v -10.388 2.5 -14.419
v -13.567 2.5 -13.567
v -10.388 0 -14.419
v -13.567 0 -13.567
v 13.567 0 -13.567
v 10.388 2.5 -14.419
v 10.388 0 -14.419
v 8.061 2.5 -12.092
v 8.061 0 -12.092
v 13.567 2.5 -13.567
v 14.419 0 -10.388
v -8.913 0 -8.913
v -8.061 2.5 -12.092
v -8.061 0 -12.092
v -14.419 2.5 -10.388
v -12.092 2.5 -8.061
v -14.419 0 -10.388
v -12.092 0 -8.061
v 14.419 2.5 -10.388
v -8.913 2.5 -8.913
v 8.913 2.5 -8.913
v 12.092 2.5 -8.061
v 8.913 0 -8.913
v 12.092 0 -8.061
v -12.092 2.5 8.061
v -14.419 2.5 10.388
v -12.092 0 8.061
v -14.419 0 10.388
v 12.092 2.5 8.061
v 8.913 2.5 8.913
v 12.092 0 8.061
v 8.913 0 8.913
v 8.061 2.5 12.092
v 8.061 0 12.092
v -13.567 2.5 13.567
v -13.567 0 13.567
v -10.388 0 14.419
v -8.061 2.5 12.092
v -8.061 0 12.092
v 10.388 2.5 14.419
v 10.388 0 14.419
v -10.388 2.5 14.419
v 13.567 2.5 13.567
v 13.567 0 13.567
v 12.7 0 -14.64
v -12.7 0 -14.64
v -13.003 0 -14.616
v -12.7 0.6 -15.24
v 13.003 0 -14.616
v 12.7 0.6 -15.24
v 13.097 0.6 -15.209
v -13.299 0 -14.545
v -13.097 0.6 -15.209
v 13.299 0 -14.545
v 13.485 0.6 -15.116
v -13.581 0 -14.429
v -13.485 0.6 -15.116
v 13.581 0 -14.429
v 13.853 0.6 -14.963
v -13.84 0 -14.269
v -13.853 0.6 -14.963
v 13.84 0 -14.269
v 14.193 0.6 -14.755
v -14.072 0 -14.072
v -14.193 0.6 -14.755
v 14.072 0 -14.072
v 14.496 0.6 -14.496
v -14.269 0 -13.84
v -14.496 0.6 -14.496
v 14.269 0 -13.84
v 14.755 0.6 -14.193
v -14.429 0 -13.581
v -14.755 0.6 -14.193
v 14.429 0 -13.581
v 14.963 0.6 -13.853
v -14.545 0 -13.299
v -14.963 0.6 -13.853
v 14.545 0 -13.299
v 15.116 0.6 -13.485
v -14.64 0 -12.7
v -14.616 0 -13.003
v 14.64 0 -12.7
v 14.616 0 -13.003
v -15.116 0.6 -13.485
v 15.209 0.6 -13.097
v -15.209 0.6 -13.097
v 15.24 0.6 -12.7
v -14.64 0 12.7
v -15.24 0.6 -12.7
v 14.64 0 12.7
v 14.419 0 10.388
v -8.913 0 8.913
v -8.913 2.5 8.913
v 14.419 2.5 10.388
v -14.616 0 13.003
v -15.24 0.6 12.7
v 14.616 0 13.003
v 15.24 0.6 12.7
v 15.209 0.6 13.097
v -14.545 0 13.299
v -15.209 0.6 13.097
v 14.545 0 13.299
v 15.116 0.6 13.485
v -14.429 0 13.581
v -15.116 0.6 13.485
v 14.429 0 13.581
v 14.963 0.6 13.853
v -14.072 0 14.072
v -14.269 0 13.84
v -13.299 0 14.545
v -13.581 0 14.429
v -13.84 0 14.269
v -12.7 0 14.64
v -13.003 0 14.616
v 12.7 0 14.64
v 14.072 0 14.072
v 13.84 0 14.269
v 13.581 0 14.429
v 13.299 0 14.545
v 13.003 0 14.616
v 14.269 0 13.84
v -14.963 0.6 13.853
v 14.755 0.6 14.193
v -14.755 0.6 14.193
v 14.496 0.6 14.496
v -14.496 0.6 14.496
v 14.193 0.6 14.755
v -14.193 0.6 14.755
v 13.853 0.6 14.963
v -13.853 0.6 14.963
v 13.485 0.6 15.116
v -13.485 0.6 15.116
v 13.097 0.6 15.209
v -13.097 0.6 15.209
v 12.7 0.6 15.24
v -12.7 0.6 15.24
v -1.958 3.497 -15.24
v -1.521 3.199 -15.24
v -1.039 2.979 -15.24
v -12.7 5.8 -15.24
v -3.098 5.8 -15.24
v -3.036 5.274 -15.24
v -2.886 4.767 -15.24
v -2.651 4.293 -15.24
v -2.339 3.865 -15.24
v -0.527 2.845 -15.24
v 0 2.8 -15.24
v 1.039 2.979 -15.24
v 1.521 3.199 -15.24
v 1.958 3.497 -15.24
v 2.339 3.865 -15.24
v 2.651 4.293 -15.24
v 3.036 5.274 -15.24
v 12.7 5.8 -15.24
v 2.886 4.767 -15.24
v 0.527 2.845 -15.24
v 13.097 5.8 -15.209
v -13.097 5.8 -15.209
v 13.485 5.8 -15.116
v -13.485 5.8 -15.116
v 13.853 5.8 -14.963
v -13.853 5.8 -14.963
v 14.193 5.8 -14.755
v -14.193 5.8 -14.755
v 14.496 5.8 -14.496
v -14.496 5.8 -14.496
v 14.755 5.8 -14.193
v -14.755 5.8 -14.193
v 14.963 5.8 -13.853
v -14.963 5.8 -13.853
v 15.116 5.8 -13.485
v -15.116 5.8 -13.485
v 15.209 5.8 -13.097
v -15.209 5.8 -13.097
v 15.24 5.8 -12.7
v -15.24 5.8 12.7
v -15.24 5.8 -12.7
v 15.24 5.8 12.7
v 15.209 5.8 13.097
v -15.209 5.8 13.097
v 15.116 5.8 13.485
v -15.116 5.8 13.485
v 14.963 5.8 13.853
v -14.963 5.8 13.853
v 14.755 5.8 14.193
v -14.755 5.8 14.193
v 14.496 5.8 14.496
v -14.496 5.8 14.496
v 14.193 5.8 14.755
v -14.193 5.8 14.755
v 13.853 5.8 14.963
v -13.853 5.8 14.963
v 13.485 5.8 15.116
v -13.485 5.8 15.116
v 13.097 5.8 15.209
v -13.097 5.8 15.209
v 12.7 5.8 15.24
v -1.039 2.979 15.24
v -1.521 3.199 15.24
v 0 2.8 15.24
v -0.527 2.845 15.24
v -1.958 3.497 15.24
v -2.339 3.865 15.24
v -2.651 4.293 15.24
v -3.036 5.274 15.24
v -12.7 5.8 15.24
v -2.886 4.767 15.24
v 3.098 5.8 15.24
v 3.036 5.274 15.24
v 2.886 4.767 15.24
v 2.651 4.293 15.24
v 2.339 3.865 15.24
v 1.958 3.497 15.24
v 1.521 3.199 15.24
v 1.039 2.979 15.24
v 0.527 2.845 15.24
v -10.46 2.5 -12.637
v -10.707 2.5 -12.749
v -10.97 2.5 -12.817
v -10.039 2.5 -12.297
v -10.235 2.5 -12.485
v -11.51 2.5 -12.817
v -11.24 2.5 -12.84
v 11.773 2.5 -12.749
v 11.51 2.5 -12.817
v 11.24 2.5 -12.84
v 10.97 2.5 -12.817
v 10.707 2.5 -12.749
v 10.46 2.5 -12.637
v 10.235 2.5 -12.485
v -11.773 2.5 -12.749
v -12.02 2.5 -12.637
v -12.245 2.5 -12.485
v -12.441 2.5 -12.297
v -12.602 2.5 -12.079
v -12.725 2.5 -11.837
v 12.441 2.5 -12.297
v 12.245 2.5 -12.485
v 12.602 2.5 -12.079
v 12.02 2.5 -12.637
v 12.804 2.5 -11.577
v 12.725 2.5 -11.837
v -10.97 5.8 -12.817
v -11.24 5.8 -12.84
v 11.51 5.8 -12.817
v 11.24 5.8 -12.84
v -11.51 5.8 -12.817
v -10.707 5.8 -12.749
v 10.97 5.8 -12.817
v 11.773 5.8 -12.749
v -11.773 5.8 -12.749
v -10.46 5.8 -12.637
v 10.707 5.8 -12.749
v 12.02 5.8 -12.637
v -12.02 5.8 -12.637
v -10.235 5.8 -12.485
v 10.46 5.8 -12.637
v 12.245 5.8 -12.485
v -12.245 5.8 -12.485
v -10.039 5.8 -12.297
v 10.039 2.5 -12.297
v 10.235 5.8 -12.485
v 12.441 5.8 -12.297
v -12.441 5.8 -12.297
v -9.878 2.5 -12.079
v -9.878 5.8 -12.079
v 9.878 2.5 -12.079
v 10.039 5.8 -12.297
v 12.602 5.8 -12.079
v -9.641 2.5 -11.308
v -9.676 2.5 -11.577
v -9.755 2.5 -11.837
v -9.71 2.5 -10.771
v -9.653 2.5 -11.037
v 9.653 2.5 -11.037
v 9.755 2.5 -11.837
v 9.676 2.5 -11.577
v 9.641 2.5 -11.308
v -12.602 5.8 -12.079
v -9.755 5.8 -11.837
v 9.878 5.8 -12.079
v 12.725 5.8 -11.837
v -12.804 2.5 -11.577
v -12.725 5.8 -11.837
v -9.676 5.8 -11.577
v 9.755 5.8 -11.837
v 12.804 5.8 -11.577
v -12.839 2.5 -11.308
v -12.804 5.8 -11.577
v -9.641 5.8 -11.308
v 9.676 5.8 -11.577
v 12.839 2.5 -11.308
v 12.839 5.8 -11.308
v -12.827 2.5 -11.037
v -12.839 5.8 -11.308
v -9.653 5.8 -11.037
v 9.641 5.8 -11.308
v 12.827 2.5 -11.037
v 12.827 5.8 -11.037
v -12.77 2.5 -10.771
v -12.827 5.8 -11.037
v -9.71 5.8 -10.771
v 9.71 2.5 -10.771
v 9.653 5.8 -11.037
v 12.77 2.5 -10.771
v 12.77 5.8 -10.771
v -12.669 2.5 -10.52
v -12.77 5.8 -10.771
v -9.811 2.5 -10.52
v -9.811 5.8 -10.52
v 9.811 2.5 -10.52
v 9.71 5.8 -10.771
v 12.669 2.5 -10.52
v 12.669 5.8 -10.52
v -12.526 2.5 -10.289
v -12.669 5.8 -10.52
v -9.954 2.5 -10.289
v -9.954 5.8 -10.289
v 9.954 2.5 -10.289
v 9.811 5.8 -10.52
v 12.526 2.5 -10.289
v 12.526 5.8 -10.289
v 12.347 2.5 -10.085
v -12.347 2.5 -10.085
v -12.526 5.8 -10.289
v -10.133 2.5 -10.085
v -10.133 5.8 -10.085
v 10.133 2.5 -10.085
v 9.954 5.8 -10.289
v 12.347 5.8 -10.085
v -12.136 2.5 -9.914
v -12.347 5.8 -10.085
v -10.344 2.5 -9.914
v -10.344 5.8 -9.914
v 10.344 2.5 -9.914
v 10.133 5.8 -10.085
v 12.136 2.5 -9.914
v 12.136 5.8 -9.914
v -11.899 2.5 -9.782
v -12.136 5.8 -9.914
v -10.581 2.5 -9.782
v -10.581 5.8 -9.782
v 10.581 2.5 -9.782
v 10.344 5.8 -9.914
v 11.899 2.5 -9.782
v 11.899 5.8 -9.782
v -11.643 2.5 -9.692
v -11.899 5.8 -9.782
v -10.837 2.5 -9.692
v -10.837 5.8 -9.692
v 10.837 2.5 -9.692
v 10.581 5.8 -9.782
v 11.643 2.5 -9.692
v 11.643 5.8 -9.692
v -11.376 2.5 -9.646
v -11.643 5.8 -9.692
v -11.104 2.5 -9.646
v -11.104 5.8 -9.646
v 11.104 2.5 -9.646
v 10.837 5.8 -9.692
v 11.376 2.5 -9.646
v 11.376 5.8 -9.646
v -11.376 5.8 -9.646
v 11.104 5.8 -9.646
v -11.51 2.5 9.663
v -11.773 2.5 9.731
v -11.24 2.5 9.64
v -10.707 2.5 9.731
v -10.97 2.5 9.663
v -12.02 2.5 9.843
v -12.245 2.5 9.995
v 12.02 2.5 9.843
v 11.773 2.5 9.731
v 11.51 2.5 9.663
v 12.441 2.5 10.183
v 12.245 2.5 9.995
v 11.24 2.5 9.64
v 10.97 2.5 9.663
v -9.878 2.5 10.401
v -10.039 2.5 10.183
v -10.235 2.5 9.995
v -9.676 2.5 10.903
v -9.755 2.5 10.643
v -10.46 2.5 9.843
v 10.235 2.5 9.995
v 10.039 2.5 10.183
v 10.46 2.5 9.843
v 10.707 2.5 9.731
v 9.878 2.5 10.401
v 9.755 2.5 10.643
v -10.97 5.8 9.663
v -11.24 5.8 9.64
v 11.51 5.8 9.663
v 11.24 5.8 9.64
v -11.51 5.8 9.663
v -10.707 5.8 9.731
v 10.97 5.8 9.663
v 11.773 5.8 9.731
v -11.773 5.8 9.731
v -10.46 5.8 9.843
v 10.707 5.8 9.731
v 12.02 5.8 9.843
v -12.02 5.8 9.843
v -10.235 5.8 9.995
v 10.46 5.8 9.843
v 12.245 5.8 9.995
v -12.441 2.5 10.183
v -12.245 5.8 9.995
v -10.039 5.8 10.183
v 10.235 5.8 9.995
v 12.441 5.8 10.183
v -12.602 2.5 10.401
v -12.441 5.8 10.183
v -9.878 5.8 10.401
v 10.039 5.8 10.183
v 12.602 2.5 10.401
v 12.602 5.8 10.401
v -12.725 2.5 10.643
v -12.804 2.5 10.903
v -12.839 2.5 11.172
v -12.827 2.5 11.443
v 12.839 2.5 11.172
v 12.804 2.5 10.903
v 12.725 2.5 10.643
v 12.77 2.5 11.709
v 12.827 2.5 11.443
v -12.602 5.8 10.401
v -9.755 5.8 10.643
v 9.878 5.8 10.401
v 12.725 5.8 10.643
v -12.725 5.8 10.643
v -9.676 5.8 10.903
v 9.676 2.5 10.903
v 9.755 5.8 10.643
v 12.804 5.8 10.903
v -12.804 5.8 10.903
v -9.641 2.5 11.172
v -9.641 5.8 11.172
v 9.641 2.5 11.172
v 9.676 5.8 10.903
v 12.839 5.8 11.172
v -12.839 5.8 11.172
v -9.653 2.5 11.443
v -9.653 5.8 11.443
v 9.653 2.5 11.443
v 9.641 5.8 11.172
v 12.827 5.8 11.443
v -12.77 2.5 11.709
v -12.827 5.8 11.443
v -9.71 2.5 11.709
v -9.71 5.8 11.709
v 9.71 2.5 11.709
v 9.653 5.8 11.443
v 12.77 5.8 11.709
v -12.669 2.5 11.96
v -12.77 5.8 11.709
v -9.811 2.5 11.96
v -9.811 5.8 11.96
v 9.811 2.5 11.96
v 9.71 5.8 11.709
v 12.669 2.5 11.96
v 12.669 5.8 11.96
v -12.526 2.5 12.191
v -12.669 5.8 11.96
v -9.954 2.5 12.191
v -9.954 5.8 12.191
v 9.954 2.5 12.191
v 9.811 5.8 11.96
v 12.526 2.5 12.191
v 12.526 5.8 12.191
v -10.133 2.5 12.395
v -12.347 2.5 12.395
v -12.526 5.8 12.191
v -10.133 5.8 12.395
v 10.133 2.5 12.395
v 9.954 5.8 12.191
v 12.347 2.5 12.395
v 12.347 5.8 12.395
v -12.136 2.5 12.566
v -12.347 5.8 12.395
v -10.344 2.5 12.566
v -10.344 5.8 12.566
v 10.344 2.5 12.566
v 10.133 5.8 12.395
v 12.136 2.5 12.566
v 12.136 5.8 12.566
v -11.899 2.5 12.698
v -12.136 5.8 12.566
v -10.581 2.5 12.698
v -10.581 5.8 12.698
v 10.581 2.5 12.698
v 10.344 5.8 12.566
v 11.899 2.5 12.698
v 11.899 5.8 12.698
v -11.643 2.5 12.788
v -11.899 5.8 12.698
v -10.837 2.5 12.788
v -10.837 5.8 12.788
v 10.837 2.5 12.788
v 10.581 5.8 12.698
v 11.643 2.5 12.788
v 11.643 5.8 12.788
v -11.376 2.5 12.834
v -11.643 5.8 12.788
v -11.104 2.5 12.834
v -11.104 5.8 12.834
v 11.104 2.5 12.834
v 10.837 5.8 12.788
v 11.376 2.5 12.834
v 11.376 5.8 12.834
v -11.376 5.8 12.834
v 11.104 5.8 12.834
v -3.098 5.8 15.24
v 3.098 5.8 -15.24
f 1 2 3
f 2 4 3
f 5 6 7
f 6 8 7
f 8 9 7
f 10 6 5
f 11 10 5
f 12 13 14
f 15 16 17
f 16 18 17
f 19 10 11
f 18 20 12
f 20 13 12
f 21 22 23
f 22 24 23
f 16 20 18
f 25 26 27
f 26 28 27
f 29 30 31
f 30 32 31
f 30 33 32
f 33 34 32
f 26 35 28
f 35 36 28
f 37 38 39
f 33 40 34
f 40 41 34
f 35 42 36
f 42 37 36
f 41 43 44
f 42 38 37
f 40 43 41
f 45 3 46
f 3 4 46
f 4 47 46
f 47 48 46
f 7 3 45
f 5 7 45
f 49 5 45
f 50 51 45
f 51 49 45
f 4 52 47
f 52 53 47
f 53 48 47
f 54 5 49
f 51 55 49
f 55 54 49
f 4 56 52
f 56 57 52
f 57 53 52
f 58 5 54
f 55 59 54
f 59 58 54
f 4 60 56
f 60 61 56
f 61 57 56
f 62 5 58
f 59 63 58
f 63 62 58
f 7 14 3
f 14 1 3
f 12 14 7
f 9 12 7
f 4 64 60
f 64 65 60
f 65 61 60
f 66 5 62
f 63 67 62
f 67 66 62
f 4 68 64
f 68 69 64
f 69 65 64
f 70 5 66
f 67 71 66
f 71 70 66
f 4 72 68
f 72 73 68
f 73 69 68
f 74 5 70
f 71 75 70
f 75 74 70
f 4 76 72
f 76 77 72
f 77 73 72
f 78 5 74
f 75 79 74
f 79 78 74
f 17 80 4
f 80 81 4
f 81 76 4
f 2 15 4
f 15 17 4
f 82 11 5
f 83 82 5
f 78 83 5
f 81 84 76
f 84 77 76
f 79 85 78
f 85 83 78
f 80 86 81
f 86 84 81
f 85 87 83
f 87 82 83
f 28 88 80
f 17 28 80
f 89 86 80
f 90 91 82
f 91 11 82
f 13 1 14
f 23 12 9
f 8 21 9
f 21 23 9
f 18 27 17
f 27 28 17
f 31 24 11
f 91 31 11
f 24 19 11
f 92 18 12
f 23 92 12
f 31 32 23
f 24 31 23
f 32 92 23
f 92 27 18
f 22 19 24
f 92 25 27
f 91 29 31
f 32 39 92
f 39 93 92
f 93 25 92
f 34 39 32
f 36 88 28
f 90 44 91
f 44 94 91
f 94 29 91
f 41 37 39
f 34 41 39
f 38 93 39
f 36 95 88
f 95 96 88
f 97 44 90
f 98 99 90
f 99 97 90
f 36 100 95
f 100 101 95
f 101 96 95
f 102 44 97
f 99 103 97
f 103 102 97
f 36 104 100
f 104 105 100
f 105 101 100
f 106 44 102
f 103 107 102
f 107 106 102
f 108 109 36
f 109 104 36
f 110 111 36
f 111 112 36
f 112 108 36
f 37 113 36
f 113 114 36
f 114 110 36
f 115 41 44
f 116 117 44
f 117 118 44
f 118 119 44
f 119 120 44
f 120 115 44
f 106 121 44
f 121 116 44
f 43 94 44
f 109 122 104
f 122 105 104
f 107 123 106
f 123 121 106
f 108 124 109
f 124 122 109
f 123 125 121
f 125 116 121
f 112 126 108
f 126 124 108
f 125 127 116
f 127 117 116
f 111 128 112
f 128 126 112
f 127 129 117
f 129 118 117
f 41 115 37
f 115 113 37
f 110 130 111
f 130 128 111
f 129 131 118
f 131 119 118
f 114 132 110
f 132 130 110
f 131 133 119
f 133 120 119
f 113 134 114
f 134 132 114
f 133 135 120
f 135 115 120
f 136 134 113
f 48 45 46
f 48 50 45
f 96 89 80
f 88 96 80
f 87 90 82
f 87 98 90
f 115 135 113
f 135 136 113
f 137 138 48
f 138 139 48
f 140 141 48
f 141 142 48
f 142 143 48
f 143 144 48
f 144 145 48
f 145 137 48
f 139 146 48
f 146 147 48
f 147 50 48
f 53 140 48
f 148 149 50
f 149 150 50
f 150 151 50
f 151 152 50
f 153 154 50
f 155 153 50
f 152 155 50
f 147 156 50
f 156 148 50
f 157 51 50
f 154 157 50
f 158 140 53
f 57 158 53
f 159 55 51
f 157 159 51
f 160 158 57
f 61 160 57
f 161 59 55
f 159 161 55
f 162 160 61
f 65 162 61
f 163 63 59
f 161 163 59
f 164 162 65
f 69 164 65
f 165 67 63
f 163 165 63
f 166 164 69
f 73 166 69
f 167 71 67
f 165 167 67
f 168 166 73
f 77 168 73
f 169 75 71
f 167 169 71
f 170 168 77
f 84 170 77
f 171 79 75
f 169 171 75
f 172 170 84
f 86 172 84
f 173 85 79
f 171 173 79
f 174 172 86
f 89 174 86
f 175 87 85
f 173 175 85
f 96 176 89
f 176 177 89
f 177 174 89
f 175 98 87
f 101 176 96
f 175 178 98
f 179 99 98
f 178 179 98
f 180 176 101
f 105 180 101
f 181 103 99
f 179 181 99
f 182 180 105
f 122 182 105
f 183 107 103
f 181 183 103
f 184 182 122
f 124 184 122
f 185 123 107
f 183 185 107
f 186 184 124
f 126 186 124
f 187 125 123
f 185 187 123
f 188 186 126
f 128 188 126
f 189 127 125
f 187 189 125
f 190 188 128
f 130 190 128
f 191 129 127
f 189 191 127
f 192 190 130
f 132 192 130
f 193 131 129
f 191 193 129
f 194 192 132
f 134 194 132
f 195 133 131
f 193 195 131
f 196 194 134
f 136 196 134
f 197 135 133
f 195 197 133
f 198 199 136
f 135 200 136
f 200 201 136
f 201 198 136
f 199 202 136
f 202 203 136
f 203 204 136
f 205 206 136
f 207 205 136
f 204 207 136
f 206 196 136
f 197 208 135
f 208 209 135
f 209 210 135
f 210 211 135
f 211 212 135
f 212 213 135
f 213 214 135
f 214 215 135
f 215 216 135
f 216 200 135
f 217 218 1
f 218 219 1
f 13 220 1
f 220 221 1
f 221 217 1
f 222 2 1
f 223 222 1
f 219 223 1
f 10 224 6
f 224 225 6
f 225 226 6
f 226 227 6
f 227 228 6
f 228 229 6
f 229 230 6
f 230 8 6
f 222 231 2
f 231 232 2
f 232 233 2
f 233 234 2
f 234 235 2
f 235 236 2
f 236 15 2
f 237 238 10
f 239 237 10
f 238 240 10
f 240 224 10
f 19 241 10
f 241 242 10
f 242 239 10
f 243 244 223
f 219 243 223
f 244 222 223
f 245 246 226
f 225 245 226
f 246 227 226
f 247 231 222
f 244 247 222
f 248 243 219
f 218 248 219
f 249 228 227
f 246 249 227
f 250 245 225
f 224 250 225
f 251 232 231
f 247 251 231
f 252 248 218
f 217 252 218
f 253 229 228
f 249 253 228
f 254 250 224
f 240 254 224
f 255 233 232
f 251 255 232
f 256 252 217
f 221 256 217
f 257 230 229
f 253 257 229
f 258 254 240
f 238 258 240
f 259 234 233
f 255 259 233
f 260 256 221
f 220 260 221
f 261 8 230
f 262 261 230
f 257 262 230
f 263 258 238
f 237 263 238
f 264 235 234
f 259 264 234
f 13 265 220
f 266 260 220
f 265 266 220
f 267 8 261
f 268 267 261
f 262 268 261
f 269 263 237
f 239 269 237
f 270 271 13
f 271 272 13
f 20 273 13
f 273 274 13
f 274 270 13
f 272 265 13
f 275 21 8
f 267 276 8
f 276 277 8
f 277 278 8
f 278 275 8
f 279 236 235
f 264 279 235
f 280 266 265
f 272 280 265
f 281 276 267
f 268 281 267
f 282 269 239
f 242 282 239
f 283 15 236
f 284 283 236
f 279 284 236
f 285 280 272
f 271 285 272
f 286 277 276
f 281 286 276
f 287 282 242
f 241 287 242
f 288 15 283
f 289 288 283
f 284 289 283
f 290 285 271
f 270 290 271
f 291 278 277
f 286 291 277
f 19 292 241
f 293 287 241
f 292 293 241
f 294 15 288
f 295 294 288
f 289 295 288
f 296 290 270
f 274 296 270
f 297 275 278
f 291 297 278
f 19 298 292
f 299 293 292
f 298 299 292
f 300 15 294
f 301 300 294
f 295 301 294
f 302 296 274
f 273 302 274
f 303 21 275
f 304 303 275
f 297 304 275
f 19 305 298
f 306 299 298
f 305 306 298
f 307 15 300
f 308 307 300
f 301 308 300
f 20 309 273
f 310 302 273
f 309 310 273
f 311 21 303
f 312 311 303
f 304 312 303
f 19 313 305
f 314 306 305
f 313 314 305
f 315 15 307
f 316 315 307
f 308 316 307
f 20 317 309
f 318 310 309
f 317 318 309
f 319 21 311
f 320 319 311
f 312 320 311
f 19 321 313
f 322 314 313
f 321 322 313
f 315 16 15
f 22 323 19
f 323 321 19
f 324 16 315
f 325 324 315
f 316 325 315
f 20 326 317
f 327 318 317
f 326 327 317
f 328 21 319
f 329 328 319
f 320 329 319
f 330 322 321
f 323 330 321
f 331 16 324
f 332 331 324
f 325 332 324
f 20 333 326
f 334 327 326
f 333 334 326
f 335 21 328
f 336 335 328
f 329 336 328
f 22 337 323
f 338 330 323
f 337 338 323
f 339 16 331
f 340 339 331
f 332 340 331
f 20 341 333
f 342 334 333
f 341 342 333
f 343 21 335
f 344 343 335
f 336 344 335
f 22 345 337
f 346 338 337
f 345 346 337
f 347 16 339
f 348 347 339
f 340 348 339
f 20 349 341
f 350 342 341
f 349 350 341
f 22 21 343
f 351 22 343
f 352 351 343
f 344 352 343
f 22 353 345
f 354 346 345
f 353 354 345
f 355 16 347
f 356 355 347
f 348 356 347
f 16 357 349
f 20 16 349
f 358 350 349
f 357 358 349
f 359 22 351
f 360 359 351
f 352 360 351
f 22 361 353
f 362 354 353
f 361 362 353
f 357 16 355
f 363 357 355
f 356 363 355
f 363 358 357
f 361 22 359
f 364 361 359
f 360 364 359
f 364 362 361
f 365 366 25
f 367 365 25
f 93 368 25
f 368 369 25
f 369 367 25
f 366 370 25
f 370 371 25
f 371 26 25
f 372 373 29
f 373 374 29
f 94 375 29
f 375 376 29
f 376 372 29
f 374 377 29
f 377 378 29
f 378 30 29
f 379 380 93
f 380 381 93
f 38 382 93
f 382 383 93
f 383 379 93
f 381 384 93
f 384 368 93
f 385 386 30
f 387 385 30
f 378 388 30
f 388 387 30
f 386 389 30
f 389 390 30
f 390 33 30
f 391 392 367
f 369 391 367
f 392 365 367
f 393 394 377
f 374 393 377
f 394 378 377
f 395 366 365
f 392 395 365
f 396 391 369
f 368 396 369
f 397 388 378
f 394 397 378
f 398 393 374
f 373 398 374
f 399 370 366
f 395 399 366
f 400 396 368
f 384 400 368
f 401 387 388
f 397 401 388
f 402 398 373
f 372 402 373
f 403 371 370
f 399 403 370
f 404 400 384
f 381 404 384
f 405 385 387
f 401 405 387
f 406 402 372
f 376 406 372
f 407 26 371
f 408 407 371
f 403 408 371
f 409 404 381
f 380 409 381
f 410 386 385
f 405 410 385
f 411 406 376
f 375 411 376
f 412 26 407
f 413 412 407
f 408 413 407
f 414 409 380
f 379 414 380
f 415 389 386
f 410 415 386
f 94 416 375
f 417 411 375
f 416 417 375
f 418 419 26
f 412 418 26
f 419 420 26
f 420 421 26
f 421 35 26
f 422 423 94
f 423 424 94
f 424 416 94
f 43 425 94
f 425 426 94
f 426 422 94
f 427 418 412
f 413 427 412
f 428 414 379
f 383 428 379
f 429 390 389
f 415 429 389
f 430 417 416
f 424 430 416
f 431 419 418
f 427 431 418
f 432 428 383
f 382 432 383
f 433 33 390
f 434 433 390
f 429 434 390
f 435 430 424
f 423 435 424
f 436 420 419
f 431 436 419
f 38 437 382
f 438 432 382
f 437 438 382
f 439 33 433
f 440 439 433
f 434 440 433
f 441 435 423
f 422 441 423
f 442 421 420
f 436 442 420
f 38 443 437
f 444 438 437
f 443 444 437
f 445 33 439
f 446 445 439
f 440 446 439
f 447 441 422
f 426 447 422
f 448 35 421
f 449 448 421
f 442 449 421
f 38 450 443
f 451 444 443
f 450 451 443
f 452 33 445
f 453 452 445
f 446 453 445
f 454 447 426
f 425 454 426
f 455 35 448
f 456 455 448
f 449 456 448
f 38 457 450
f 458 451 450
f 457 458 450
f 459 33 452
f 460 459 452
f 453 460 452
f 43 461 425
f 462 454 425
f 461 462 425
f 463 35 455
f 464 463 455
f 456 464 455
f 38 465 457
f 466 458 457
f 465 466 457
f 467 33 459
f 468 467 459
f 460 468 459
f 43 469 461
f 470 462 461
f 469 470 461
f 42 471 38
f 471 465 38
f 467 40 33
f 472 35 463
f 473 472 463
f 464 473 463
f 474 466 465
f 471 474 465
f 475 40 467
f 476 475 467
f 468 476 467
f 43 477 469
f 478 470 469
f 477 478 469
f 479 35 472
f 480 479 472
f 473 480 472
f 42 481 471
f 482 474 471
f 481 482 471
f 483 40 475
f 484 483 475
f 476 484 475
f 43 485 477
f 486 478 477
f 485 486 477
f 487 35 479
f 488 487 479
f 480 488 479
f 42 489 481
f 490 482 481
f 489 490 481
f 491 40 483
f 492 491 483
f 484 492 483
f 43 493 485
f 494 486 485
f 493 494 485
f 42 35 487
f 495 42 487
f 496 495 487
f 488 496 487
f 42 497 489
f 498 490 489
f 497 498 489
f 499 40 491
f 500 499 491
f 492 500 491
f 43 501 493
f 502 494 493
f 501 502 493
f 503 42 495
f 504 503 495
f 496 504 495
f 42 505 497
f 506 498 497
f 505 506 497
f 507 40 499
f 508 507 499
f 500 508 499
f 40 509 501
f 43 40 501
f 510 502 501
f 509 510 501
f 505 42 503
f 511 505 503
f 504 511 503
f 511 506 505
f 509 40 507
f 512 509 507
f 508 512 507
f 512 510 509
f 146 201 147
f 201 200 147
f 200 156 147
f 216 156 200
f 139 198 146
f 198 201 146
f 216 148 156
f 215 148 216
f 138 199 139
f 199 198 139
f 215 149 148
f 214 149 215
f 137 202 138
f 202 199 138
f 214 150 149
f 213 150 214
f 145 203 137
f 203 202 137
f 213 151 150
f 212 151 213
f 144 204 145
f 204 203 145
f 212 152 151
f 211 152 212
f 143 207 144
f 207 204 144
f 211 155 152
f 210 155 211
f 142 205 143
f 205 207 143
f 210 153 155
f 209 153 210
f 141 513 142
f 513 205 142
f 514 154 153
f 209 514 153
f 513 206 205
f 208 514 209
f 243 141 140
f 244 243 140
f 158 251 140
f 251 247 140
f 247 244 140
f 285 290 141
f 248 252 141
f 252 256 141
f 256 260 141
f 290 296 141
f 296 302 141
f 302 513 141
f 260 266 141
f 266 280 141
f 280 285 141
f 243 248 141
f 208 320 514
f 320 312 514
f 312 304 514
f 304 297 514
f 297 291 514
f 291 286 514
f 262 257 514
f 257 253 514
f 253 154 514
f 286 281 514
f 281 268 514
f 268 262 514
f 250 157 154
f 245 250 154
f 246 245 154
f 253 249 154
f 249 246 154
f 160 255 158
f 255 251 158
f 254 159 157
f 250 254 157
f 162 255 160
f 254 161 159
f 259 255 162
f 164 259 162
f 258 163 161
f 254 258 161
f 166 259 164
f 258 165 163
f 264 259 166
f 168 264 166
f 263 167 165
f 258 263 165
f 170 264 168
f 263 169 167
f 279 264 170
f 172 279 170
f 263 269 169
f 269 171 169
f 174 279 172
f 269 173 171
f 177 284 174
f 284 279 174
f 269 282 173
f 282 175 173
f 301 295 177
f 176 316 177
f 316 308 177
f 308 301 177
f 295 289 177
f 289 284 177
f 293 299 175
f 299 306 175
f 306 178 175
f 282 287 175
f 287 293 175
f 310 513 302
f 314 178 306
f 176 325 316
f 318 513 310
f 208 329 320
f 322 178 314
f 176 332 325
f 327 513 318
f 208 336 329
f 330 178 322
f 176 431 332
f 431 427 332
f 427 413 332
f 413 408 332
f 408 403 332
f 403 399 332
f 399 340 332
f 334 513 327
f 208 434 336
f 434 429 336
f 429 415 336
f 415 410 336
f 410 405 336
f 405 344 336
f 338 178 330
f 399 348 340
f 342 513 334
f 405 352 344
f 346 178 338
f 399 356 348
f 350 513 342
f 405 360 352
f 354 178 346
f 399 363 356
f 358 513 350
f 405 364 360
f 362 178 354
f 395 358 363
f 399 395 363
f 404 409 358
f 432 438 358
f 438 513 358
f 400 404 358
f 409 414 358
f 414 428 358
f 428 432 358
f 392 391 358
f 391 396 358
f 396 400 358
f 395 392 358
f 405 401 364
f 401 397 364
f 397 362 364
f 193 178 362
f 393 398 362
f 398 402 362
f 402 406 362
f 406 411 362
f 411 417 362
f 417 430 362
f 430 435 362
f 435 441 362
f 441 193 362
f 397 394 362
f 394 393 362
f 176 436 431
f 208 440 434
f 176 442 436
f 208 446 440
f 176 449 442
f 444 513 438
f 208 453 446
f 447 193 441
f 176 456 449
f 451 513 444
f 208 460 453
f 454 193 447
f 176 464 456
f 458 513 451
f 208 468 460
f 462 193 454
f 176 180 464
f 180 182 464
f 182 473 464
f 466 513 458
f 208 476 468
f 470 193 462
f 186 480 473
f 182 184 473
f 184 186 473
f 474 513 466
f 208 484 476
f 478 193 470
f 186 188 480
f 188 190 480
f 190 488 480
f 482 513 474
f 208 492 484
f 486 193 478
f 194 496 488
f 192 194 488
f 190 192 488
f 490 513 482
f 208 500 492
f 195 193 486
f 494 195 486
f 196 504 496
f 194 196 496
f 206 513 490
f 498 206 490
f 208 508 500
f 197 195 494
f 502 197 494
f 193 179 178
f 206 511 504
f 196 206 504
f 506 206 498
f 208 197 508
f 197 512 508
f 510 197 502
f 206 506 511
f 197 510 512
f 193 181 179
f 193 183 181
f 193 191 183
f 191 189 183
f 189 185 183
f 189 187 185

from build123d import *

# Parameters (mm, degrees)
SKETCH_2_W          = 30.48
SKETCH_2_H          = 30.48
EXTRUDE_1_DEPTH     = 5.8
SKETCH_3_R          = 3.1
CUT_EXTRUDE_1_DEPTH = 30.48
CUT_EXTRUDE_2_DEPTH = 2.5
SKETCH_5_R          = 1.6
CUT_EXTRUDE_3_DEPTH = 3.3
FILLET_1_R          = 2.54
CHAMFER_1_SIZE      = 0.6


with BuildPart() as part:
    # 草图2 → 凸台-拉伸1 (new body)
    with BuildSketch(Plane(origin=(0, 0, 0), x_dir=(1, 0, 0), z_dir=(0, 1, 0))):
        Rectangle(SKETCH_2_W, SKETCH_2_H)
    extrude(amount=EXTRUDE_1_DEPTH)

    # 草图3 → 切除-拉伸1 (cut)
    with BuildSketch(Plane.XY.offset(15.24)):
        with Locations((0, 5.9)):
            Circle(SKETCH_3_R)
    extrude(amount=-CUT_EXTRUDE_1_DEPTH, mode=Mode.SUBTRACT)

    # 草图4 → 切除-拉伸2 (cut)
    with BuildSketch(Plane.XZ):
        Polygon((13.567015256, 13.567015256), (10.388253301, 14.418761954), (8.061238046, 12.091746699), (8.912984744, 8.912984744), (12.091746699, 8.061238046), (14.418761954, 10.388253301), align=None)
        Polygon((-13.567015256, 13.567015256), (-14.418761954, 10.388253301), (-12.091746699, 8.061238046), (-8.912984744, 8.912984744), (-8.061238046, 12.091746699), (-10.388253301, 14.418761954), align=None)
        Polygon((13.567015256, -13.567015256), (14.418761954, -10.388253301), (12.091746699, -8.061238046), (8.912984744, -8.912984744), (8.061238046, -12.091746699), (10.388253301, -14.418761954), align=None)
        Polygon((-13.567015256, -13.567015256), (-10.388253301, -14.418761954), (-8.061238046, -12.091746699), (-8.912984744, -8.912984744), (-12.091746699, -8.061238046), (-14.418761954, -10.388253301), align=None)
    extrude(amount=-CUT_EXTRUDE_2_DEPTH, mode=Mode.SUBTRACT)

    # 草图5 → 切除-拉伸3 (cut)
    with BuildSketch(Plane(origin=(0, 2.5, 0), x_dir=(-1, 0, 0), z_dir=(0, -1, 0))):
        with Locations((11.24, -11.24)):
            Circle(SKETCH_5_R)
        with Locations((-11.24, -11.24)):
            Circle(SKETCH_5_R)
        with Locations((-11.24, 11.24)):
            Circle(SKETCH_5_R)
        with Locations((11.24, 11.24)):
            Circle(SKETCH_5_R)
    extrude(amount=-CUT_EXTRUDE_3_DEPTH, mode=Mode.SUBTRACT)

    # 圆角1
    fillet_1_edges = [part.edges().sort_by_distance(p)[0] for p in [
        (15.24, 2.9, 15.24),
        (-15.24, 2.9, 15.24),
        (-15.24, 2.9, -15.24),
        (15.24, 2.9, -15.24),
    ]]
    fillet(fillet_1_edges, radius=FILLET_1_R)

    # 倒角1
    chamfer_1_edges = [part.edges().sort_by_distance(p)[0] for p in [
        (-15.24, 0, 0),
        (15.24, 0, 0),
        (0, 0, 15.24),
        (0, 0, -15.24),
        (14.496051224, 0, -14.496051224),
        (14.496051224, 0, 14.496051224),
        (-14.496051224, 0, 14.496051224),
        (-14.496051224, 0, -14.496051224),
    ]]
    chamfer(chamfer_1_edges, length=CHAMFER_1_SIZE)


solid = part.part
